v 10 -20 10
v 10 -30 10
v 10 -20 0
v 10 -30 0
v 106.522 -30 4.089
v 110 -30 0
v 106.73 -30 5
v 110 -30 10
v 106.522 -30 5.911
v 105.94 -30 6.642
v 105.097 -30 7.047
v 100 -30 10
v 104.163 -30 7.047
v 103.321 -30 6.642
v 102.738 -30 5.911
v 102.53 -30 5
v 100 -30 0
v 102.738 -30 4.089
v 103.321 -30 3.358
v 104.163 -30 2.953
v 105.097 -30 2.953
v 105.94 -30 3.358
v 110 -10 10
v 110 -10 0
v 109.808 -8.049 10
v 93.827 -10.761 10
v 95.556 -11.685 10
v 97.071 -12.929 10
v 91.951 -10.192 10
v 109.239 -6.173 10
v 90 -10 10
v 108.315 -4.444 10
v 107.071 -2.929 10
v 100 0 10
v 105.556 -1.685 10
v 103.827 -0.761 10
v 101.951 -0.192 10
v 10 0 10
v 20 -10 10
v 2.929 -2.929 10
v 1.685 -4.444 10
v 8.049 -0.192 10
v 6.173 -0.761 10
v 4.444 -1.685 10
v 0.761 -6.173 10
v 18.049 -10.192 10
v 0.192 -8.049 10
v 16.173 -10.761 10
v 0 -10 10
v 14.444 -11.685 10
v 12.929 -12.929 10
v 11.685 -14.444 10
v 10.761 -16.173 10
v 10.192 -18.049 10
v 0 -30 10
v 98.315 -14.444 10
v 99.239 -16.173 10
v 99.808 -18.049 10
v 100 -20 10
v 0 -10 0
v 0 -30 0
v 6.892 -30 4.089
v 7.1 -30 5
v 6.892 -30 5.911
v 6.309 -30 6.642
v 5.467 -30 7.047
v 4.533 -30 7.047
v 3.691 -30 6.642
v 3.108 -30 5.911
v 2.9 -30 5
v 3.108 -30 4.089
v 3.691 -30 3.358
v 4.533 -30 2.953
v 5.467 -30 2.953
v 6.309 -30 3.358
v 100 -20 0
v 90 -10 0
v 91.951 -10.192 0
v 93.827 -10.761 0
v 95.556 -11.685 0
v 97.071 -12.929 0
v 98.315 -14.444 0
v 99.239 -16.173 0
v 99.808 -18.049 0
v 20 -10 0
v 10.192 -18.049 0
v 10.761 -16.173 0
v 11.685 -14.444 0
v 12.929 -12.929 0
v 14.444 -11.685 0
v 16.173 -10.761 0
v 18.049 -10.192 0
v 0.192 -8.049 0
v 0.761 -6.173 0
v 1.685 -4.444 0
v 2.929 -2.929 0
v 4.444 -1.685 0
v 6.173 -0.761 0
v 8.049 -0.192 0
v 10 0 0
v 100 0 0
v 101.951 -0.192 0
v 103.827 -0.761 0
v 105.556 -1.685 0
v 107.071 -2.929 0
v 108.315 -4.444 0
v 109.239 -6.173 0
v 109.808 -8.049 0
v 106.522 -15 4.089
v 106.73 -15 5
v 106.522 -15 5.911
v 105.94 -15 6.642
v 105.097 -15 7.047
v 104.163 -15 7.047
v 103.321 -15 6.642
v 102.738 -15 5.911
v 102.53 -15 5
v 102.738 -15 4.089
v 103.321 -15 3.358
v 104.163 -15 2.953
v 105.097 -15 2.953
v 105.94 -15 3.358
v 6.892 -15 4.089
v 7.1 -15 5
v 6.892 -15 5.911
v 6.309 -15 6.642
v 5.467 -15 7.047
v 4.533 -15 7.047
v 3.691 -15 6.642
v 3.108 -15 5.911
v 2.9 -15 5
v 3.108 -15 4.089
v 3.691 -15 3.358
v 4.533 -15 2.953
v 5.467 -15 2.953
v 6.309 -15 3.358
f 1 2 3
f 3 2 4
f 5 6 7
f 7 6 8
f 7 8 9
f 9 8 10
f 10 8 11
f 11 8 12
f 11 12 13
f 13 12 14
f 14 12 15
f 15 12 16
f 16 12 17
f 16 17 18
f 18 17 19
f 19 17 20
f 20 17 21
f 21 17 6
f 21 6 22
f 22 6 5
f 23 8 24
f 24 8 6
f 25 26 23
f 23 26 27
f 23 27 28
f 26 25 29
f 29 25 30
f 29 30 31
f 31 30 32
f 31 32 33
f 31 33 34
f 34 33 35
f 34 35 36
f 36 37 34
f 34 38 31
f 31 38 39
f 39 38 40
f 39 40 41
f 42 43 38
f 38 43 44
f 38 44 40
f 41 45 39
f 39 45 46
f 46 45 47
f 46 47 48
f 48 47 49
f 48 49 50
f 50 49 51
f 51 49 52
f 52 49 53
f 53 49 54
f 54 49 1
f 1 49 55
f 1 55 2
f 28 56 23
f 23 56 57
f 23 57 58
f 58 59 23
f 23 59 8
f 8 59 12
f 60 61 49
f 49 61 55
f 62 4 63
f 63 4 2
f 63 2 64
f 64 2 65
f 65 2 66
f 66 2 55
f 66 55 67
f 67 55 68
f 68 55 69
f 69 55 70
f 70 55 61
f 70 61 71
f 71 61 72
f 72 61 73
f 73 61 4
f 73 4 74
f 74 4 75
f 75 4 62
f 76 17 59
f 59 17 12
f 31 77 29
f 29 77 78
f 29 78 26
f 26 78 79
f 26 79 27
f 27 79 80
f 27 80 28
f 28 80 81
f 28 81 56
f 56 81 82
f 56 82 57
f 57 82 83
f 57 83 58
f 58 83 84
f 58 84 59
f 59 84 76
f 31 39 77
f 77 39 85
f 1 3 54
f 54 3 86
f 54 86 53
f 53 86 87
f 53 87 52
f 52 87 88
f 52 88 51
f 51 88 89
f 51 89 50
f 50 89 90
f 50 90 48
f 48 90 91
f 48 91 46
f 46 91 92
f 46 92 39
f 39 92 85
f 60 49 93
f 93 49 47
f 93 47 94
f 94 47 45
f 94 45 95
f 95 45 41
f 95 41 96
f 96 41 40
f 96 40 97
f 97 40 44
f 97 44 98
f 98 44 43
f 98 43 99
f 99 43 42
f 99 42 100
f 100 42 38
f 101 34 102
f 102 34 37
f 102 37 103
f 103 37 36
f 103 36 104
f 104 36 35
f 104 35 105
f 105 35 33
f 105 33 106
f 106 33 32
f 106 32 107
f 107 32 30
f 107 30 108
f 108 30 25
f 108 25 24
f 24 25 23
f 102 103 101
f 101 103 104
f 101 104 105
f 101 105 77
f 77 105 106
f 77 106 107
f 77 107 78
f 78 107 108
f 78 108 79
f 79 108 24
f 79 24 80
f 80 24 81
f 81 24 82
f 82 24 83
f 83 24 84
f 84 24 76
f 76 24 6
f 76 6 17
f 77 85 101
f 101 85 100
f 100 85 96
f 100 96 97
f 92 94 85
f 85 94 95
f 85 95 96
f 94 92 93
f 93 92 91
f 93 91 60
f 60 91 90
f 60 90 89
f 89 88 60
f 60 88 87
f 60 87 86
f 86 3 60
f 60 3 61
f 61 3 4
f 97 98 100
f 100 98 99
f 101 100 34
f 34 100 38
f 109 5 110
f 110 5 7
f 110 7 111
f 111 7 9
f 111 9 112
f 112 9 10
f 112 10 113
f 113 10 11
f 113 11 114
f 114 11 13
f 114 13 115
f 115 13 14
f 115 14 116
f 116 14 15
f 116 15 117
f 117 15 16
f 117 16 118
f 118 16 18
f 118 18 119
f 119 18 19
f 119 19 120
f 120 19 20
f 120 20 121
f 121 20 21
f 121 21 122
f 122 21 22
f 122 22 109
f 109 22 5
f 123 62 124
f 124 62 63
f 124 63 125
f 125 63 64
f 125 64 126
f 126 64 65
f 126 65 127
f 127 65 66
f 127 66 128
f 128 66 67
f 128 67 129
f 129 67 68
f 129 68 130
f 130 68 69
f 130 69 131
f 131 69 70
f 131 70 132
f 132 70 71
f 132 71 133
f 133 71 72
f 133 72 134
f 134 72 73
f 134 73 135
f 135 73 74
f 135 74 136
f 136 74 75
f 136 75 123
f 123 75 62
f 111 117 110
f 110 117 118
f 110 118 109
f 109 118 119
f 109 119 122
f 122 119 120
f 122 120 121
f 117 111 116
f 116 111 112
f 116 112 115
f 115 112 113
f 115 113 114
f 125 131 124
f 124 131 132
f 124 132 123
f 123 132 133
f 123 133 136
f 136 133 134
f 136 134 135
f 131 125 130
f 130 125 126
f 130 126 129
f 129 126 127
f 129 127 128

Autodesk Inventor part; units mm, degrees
ref_plane "YZ Plane" through (0, 0, 0) normal (1, 0, 0) x (0, 1, 0)
ref_plane "XZ Plane" through (0, 0, 0) normal (0, 1, 0) x (-1, 0, 0)
ref_plane "XY Plane" through (0, 0, 0) normal (0, 0, 1) x (1, 0, 0)
sketch "Sketch1" plane through (0, 0, 0) normal (0, 0, 1) x (1, 0, 0)
  line L0 (0, 0) -> (110, 0)
  line L1 (110, 0) -> (110, -30)
  line L2 (110, -30) -> (0, -30)
  line L3 (0, -30) -> (0, 0)
  line L4 (10, -30) -> (100, -30)
  line L5 (100, -30) -> (100, -10)
  line L6 (100, -10) -> (10, -10)
  line L7 (10, -10) -> (10, -30)
  point P0 (0, -15)
  point P1 (55, 0)
  dimension "d0" = 110
  dimension "d1" = 30
  dimension "d2" = 10
  dimension "d3" = 10
  dimension "d4" = 10
extrude "Extrusion1" add sketch "Sketch1" along normal blind 10 contours L0 L1 L2 L5 L6 L7 L3
fillet "Fillet1" radius 10 4 edges at (0, 0, 5) (110, 0, 5) (10, -10, 5) (100, -10, 5)
sketch "Sketch2" plane through (0, -30, 0) normal (0, -1, 0) x (1, 0, 0)
  line L0 (0, 0) -> (10, 0) projected
  line L1 (0, 0) -> (0, 10) projected
  circle A0 centre (5, 5) radius 2.1
  line L2 (110, 0) -> (110, 10) projected
  line L3 (100, 0) -> (110, 0) projected
  circle A1 centre (104.6302, 5) radius 2.1
  point P0 (5, 0)
  point P1 (0, 5)
  point P2 (105, 5)
  point P3 (110, 5)
  dimension "d8" = 5
  dimension "d9" = 5
  dimension "d10" = 4.2
  dimension "d11" = 5
  dimension "d12" = 5
  dimension "d13" = 4.2
extrude "Extrusion2" cut sketch "Sketch2" against normal blind 15
equation "\"d3\" = d2"
equation "\"d4\" = d2"
equation "\"d5\" = d2"
equation "\"d8\" = 0.5 * d2"
equation "\"d9\" = 0.5 * d2"
equation "\"d11\" = d9"
equation "\"d12\" = d8"
equation "\"d13\" = d10"
properties part number "side door handle v02"
